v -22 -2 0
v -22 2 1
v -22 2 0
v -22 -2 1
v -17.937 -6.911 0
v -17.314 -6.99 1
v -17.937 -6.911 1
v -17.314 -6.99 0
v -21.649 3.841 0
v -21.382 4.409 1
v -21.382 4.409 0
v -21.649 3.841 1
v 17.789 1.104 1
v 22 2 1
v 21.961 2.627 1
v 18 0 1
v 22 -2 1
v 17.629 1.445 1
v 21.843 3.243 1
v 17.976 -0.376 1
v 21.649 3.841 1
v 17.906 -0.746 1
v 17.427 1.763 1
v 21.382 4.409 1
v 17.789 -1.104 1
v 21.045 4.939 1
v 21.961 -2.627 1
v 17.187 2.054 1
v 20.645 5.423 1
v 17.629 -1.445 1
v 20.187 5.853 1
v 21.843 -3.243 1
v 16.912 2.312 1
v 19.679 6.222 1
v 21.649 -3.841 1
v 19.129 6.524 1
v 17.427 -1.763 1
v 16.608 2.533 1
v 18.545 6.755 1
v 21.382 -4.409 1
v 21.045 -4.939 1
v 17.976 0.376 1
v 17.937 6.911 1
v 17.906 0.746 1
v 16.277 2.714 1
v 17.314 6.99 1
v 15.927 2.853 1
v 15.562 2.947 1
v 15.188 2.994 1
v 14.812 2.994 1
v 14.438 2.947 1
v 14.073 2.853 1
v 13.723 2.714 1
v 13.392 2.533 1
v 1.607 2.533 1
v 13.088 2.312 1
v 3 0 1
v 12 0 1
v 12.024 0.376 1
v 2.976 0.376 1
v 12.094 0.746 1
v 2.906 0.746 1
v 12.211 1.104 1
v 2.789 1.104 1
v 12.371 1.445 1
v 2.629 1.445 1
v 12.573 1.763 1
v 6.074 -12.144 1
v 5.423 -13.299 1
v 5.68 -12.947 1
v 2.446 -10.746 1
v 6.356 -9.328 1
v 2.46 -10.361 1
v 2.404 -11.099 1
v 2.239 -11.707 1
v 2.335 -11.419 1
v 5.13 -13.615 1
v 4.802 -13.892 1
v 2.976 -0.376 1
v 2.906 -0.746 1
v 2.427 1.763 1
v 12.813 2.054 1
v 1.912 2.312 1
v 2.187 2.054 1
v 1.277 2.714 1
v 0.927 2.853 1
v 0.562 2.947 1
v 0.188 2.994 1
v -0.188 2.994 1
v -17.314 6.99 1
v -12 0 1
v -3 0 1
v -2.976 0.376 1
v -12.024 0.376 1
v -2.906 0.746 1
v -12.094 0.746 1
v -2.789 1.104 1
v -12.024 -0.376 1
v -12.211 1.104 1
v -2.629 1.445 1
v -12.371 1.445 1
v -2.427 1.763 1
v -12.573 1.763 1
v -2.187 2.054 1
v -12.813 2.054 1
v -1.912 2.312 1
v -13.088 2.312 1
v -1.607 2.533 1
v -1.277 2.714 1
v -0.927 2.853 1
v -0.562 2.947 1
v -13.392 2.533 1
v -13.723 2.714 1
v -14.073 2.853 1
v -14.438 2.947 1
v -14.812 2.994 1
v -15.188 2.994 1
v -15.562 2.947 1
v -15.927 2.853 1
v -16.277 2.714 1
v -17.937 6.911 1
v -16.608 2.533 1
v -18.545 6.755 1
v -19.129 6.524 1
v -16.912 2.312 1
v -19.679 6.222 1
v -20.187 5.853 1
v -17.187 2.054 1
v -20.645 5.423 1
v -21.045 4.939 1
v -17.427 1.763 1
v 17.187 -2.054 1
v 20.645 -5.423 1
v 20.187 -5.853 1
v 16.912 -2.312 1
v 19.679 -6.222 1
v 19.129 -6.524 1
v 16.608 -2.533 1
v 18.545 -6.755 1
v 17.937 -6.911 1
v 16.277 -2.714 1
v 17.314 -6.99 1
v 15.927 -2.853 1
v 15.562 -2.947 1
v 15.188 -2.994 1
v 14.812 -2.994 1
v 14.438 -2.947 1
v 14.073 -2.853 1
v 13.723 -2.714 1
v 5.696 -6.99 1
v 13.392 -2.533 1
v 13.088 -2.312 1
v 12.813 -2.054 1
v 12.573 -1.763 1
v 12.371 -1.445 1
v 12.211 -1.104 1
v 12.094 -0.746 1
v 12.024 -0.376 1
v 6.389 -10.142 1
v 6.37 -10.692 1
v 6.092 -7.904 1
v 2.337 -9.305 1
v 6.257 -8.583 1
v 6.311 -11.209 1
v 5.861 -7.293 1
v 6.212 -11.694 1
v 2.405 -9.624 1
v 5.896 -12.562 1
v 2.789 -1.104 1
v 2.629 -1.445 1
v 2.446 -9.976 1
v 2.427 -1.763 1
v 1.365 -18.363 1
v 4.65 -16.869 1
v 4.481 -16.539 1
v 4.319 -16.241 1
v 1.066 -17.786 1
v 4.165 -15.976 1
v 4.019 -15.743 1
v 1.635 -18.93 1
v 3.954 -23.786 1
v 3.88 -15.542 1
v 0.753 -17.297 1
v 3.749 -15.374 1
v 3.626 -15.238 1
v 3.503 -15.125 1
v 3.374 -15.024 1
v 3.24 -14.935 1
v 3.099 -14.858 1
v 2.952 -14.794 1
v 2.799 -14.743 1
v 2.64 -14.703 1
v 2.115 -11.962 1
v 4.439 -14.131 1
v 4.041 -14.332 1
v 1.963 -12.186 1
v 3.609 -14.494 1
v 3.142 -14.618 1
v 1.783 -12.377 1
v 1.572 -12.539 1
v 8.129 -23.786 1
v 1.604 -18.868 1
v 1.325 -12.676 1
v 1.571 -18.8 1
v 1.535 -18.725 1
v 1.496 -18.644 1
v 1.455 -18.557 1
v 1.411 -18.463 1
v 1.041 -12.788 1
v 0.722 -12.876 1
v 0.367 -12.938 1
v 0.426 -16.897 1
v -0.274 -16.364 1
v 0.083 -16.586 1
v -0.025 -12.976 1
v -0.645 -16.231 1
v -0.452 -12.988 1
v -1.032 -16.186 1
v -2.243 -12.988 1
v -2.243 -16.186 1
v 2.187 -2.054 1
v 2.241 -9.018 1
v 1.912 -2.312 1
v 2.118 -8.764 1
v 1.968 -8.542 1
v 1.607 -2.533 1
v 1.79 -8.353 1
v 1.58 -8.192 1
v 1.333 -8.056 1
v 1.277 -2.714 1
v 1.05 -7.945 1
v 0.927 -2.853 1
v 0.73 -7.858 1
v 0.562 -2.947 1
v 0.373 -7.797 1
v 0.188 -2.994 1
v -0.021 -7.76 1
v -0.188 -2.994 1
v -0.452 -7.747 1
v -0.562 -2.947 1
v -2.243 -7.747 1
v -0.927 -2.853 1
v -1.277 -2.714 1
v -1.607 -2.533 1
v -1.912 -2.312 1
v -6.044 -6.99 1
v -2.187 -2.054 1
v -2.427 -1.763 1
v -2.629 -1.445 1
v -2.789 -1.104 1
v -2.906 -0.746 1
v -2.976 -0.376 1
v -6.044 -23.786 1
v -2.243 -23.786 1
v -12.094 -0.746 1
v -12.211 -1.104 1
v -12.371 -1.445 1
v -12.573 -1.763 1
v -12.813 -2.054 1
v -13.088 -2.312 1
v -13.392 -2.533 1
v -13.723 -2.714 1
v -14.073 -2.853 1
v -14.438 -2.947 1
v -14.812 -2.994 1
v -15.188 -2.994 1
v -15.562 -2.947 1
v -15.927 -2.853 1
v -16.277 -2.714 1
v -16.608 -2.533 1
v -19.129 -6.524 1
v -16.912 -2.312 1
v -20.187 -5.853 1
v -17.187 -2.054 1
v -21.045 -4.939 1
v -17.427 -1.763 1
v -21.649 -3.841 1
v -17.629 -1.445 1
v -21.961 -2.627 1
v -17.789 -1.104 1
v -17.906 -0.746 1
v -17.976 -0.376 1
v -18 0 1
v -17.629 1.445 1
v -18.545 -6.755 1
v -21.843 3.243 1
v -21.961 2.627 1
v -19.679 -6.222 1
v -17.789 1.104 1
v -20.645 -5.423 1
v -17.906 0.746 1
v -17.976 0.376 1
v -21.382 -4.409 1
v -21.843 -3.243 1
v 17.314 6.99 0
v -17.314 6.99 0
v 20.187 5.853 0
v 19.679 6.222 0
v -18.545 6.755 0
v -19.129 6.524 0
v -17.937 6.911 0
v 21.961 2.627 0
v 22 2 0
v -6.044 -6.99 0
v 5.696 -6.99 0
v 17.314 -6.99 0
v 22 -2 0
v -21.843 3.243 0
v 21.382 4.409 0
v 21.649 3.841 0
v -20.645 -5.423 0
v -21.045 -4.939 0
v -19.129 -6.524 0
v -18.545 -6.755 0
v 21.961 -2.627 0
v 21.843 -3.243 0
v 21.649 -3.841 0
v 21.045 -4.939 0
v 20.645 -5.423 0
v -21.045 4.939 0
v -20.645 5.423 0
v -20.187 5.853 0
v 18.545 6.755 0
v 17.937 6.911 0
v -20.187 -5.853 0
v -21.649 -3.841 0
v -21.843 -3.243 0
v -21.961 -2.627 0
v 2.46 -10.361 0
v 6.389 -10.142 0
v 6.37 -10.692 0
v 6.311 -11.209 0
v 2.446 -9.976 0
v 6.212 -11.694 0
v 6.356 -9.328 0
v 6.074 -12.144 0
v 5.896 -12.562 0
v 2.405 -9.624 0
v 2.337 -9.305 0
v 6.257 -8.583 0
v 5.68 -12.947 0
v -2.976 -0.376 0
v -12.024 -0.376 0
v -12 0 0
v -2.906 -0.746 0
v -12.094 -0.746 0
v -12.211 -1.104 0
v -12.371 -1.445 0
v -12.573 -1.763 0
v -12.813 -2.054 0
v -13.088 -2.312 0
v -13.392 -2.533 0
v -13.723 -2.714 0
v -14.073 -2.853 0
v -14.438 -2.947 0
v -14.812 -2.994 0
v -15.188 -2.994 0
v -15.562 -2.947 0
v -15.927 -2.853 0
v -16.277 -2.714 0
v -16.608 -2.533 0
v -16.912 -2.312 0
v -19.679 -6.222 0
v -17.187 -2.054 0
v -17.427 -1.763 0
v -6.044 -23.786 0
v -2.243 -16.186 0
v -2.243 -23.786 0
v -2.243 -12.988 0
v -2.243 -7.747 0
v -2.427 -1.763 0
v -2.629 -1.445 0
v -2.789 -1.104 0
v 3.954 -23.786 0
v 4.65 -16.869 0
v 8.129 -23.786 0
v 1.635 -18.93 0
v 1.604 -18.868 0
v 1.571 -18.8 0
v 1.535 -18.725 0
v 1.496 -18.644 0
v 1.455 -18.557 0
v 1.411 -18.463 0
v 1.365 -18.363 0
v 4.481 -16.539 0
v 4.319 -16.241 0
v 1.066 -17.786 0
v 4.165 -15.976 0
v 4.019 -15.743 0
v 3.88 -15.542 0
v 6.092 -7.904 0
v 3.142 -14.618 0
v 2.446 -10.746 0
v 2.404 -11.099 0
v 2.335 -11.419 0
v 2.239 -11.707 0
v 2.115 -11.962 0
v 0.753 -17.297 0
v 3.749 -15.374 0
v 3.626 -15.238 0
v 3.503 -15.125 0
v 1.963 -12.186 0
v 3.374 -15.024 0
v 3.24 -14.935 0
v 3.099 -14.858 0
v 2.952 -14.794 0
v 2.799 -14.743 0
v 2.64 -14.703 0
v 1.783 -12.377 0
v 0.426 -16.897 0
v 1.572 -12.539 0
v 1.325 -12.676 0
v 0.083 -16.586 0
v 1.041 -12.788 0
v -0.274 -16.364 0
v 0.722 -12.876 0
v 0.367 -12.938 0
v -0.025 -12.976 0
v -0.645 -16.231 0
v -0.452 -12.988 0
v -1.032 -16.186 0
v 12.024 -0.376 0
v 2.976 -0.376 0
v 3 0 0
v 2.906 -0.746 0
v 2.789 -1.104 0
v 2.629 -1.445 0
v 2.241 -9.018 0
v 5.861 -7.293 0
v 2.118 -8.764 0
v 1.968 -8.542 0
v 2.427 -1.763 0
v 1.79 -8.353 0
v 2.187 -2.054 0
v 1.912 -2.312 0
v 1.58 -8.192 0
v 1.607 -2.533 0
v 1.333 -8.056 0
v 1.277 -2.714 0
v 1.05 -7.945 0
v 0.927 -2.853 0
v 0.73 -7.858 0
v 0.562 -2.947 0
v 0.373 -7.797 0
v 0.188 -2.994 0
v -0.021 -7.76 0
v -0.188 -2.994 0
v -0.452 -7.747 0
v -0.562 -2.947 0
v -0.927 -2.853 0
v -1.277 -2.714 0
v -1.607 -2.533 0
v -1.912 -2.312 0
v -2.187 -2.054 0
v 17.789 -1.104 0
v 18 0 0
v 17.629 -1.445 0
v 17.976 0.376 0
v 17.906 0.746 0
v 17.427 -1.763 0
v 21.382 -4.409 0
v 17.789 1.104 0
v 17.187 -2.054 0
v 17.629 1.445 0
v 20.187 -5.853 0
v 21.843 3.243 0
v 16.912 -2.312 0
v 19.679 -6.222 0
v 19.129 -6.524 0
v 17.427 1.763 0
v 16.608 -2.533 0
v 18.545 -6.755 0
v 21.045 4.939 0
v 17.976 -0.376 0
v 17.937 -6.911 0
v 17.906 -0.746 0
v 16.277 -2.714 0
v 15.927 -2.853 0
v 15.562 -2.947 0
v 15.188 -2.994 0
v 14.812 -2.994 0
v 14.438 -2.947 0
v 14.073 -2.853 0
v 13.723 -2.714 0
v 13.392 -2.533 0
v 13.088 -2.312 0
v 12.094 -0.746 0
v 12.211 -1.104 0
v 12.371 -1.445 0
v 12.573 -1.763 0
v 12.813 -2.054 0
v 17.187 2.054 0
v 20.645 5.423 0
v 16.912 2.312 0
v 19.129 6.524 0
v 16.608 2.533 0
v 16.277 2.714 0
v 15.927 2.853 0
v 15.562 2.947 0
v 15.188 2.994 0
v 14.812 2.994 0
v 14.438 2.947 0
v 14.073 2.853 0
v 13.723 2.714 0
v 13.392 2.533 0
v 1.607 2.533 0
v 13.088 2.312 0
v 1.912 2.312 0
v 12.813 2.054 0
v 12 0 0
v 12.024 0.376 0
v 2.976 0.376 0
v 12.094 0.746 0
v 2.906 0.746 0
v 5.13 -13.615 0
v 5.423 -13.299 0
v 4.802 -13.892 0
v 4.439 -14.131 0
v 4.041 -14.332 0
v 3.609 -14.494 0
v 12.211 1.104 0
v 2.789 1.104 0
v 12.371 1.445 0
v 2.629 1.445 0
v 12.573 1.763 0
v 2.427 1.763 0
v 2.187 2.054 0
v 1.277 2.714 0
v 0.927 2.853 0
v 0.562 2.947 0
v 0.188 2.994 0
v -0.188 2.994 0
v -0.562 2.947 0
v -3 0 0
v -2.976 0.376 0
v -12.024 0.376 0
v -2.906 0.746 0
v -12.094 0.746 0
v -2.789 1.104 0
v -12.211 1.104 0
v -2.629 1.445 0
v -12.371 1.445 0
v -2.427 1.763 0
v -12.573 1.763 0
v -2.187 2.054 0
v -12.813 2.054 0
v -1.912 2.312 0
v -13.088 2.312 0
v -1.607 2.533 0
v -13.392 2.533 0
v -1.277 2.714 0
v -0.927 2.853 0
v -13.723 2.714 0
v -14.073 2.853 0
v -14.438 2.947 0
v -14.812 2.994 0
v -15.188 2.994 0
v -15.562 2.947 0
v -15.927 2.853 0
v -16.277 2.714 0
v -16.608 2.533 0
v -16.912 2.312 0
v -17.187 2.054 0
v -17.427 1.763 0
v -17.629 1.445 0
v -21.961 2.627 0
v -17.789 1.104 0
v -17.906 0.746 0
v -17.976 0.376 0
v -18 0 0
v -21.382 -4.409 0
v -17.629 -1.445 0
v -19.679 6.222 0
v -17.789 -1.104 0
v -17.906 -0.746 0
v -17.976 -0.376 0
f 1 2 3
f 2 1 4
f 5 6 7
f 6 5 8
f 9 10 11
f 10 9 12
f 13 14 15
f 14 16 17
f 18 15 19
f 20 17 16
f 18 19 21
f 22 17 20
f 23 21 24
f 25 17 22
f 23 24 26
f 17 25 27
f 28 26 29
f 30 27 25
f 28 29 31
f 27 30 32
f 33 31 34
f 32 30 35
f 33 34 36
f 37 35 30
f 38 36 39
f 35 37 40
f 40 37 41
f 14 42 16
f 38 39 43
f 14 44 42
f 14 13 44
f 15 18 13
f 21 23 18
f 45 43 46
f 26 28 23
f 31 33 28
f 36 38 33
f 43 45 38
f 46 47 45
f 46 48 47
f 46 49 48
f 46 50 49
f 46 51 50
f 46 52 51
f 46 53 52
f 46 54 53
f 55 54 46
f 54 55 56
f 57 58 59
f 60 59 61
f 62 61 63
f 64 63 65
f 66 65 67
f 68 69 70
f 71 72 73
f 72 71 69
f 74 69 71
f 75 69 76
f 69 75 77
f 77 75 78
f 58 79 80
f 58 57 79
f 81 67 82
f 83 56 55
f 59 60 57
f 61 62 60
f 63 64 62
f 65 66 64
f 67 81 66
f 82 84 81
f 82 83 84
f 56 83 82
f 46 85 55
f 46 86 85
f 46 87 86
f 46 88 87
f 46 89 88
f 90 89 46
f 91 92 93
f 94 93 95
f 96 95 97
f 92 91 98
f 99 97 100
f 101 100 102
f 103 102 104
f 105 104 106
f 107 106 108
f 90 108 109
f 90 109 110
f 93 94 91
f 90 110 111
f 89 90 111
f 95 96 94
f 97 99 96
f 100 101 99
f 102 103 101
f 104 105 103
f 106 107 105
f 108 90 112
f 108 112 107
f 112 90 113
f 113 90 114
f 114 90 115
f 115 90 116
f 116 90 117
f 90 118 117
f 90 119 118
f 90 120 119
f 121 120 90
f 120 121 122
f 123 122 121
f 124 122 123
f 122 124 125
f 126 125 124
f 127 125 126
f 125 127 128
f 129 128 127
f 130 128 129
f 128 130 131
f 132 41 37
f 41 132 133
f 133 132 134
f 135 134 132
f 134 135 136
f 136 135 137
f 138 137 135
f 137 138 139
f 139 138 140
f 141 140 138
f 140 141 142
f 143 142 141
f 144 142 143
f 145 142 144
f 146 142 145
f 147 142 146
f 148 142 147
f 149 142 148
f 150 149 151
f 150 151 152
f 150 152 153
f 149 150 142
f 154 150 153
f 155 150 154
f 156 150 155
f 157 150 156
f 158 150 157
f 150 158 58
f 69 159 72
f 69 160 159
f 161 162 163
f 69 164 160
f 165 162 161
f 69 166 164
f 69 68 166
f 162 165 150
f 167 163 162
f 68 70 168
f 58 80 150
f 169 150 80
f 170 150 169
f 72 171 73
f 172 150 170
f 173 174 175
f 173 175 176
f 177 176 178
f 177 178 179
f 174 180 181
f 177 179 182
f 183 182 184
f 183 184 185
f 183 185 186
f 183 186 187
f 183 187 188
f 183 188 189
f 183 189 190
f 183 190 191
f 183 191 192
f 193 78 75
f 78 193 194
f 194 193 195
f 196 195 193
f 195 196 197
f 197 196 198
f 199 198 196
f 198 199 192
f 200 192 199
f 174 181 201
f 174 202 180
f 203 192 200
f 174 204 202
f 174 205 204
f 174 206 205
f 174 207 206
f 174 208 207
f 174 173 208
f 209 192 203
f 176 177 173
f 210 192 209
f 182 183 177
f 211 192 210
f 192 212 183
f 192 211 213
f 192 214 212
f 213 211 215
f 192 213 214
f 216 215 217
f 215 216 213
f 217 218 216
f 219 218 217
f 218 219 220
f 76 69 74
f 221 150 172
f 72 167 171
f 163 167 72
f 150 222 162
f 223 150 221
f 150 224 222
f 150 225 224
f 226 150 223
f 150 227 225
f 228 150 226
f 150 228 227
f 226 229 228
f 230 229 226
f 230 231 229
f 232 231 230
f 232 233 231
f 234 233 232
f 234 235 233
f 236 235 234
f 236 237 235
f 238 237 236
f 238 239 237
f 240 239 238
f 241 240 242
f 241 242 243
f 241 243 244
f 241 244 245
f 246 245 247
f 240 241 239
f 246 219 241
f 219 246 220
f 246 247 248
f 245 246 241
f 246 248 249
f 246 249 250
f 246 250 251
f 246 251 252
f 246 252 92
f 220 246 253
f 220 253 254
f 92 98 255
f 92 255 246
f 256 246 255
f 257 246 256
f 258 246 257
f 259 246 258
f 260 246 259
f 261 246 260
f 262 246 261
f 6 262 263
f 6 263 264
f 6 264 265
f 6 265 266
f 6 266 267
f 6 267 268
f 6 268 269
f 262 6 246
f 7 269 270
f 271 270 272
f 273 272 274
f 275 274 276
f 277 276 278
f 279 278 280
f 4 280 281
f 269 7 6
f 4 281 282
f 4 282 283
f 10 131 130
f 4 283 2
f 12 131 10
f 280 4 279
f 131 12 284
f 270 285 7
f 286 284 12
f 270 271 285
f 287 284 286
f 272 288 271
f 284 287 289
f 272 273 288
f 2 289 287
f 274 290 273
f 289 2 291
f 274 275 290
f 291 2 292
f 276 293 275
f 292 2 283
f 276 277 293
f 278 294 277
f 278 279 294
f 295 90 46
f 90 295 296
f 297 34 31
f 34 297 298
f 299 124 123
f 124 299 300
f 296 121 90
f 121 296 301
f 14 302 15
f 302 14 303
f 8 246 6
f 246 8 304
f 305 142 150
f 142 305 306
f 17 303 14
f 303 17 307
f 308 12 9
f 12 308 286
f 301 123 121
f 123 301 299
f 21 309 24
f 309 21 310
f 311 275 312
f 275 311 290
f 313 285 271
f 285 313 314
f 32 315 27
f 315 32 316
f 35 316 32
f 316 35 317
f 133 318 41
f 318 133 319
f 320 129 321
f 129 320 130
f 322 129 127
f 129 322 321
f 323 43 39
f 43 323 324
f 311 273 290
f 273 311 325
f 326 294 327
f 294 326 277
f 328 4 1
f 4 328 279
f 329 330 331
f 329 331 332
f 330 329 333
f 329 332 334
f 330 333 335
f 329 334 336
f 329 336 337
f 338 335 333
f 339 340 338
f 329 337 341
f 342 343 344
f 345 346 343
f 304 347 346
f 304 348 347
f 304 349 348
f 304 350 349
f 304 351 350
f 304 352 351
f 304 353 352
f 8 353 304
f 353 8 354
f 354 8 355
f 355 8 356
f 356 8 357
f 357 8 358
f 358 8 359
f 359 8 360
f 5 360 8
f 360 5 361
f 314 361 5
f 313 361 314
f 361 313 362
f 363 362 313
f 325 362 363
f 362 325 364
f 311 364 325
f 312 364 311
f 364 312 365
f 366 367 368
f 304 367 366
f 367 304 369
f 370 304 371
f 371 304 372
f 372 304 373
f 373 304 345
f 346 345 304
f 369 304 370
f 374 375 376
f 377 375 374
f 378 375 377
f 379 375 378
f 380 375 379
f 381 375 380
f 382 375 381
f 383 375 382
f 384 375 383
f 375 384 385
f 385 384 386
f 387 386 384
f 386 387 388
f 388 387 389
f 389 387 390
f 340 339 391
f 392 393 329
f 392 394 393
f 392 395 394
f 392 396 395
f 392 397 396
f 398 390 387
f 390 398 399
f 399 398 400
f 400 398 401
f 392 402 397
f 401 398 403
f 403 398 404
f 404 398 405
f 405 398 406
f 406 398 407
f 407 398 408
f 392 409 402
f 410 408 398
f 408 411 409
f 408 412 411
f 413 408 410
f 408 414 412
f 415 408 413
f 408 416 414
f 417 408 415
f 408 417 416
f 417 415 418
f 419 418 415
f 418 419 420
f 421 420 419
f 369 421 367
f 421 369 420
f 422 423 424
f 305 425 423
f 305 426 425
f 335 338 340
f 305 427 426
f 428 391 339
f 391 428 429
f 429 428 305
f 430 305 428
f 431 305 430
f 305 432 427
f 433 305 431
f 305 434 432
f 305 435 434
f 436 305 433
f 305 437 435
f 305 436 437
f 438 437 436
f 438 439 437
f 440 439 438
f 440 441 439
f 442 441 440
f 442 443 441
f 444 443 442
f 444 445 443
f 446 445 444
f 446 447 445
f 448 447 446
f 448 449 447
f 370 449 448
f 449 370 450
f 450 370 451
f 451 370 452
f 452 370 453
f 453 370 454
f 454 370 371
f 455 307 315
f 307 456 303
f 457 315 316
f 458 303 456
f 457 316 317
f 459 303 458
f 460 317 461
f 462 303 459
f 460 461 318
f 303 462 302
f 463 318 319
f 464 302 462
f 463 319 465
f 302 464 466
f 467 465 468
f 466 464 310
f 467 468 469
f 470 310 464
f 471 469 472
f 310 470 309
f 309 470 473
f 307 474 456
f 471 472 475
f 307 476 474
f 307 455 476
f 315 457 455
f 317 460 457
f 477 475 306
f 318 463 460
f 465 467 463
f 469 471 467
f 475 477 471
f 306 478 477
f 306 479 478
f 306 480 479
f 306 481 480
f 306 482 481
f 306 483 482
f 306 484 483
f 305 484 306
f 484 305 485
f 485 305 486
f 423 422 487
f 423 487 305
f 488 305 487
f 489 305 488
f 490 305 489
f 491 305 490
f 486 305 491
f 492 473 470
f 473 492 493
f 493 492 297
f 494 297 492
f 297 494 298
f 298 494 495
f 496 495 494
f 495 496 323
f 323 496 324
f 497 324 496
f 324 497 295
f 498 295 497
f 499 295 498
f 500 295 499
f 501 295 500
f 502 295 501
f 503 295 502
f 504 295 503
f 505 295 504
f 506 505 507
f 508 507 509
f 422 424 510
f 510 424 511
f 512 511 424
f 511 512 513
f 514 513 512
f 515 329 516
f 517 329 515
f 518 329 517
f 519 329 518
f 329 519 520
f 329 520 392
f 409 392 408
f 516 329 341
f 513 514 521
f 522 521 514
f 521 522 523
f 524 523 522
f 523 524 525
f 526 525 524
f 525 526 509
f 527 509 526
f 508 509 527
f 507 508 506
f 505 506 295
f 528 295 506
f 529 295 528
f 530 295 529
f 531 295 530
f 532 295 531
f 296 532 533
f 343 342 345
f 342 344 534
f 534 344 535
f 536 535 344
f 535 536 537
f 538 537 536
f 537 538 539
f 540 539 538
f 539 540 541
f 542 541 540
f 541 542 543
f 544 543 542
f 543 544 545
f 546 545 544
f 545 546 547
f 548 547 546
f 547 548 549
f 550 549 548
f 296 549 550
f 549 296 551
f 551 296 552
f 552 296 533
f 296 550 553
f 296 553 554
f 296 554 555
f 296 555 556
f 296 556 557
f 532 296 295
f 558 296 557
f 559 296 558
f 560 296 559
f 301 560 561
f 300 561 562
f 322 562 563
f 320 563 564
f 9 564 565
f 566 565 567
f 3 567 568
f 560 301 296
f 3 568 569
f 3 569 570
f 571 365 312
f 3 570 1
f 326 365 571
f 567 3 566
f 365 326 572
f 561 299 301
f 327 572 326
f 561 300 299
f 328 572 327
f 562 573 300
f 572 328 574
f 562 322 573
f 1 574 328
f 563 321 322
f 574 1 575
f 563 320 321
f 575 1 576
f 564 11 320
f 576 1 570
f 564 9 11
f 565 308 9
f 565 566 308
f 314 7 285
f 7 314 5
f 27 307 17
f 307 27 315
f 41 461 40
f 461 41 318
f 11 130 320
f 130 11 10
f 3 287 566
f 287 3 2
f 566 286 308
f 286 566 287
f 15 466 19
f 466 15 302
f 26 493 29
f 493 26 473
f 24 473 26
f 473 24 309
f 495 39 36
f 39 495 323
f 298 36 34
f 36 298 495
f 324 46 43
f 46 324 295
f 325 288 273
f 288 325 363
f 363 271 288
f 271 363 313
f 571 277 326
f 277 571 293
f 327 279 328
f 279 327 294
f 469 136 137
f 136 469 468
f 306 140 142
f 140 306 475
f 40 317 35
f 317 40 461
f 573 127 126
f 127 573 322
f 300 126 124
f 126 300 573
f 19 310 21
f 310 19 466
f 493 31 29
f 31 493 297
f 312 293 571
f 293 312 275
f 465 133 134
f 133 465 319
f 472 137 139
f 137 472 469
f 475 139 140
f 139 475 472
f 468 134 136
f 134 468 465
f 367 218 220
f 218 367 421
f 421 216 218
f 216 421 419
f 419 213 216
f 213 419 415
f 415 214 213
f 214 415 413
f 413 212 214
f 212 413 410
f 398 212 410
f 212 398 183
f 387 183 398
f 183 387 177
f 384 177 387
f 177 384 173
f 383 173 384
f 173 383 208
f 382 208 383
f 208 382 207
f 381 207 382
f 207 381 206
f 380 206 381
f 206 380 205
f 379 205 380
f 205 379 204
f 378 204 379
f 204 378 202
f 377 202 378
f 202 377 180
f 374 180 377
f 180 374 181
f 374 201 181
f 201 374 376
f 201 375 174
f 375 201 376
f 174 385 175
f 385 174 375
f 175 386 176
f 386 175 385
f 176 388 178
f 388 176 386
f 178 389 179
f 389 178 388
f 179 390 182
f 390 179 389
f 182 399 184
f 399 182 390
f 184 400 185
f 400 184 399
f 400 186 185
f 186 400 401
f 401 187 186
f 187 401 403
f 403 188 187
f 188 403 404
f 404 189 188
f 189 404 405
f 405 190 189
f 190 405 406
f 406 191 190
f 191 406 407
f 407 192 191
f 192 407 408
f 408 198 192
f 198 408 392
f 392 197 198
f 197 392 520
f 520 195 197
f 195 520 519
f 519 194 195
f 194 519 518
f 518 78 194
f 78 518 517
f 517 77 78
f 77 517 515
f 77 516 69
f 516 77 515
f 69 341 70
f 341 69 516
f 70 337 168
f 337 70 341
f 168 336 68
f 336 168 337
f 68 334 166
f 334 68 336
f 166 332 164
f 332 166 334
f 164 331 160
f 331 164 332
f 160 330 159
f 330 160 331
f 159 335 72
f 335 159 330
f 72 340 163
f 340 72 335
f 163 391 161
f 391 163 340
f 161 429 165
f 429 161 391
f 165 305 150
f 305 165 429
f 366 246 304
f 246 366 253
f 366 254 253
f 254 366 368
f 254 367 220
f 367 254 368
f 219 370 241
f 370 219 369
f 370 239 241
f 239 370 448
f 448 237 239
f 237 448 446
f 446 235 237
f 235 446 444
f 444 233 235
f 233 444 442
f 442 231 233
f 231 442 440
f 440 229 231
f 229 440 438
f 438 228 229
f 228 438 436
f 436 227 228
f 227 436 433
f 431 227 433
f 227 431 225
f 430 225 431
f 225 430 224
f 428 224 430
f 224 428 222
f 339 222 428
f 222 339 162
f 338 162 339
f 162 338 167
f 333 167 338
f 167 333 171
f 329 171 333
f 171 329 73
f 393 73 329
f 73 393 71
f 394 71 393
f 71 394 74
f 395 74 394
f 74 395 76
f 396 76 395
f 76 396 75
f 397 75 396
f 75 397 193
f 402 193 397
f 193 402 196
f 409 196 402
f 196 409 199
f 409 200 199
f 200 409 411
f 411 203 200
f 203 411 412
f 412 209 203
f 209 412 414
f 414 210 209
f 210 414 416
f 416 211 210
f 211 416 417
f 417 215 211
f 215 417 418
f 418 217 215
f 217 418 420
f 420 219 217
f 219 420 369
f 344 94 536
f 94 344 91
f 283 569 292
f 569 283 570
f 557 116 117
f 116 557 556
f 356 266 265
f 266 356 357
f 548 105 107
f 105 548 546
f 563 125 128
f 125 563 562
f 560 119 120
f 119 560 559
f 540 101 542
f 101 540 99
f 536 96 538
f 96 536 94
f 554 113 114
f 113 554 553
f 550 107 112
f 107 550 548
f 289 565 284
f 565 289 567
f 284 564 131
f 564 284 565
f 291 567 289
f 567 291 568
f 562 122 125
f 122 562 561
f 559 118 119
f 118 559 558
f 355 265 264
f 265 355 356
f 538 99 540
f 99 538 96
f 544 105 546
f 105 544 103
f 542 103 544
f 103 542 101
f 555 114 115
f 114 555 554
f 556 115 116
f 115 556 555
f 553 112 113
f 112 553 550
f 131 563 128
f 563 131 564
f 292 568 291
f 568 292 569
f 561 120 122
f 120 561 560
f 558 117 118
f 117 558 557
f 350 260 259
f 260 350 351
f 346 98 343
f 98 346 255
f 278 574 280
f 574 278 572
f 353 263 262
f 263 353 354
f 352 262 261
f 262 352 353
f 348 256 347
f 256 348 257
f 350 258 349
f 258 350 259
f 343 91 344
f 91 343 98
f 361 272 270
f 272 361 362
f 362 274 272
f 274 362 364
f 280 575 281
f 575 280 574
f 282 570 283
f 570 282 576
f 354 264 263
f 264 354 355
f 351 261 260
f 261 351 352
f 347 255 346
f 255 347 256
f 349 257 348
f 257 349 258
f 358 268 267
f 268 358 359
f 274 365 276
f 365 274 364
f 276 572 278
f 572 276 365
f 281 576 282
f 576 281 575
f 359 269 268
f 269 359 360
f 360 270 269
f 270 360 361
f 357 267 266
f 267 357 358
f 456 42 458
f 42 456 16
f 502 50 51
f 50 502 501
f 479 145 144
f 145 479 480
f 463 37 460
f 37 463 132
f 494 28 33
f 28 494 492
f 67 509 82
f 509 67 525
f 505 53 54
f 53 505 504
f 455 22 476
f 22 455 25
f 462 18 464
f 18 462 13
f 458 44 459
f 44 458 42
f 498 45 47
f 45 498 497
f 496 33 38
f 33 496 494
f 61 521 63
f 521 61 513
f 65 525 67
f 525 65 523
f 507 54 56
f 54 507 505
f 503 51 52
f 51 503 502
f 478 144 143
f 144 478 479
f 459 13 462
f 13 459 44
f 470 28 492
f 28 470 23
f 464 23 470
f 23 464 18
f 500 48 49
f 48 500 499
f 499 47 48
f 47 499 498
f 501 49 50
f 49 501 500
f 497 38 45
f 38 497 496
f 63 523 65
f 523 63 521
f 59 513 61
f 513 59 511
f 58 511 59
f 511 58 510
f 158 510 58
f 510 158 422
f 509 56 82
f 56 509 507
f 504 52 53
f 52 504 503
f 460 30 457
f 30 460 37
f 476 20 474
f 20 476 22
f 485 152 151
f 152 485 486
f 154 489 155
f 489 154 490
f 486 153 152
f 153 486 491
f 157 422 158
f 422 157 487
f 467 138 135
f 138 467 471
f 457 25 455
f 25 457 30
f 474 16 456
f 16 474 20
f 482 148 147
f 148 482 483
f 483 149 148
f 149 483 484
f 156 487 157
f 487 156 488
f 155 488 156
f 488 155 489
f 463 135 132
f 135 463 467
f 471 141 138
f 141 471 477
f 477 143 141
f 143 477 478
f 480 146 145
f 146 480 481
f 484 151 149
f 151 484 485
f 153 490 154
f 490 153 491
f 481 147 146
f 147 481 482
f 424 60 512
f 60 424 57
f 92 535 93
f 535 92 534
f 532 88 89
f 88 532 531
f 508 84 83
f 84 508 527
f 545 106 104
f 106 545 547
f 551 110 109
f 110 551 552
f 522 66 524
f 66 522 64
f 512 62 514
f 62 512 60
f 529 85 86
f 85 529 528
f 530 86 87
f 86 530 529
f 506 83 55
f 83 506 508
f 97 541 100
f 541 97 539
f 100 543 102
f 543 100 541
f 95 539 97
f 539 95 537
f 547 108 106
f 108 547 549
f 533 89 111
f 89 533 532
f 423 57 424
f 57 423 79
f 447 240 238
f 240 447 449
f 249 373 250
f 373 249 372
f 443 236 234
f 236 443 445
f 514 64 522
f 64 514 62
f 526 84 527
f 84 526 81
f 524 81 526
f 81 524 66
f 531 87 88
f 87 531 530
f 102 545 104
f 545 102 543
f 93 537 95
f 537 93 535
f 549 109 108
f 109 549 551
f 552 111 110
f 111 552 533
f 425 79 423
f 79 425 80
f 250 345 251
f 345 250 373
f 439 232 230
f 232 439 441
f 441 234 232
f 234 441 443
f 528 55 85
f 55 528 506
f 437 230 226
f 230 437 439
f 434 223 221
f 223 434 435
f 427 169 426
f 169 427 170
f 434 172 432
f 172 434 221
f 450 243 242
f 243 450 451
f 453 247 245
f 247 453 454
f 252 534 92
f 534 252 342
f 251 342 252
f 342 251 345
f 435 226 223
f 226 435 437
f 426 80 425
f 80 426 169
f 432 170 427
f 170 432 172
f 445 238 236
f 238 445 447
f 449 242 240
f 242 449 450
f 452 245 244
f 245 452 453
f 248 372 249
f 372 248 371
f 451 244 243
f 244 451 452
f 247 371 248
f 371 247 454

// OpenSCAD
$fn = 50;


difference() {
	union() {
		translate(v = [0, 0, 0]) {
			rotate(a = [0, 0, 0]) {
				hull() {
					translate(v = [-17.0000000000, 2.0000000000, 0]) {
						rotate(a = [0, 0, 0]) {
							translate(v = [0, 0, 0]) {
								rotate(a = [0, 0, 0]) {
									cylinder(h = 1, r = 5);
								}
							}
						}
					}
					translate(v = [17.0000000000, 2.0000000000, 0]) {
						rotate(a = [0, 0, 0]) {
							translate(v = [0, 0, 0]) {
								rotate(a = [0, 0, 0]) {
									cylinder(h = 1, r = 5);
								}
							}
						}
					}
					translate(v = [-17.0000000000, -2.0000000000, 0]) {
						rotate(a = [0, 0, 0]) {
							translate(v = [0, 0, 0]) {
								rotate(a = [0, 0, 0]) {
									cylinder(h = 1, r = 5);
								}
							}
						}
					}
					translate(v = [17.0000000000, -2.0000000000, 0]) {
						rotate(a = [0, 0, 0]) {
							translate(v = [0, 0, 0]) {
								rotate(a = [0, 0, 0]) {
									cylinder(h = 1, r = 5);
								}
							}
						}
					}
				}
			}
		}
		translate(v = [0, -5, 0]) {
			rotate(a = [0, 0, 0]) {
				linear_extrude(height = 1) {
					text(font = "DejaVu Sans Mono:style=Bold", halign = "center", size = 19.0000000000, text = "R", valign = "top");
				}
			}
		}
	}
	union() {
		translate(v = [-15.0000000000, 0.0000000000, -125.0000000000]) {
			rotate(a = [0, 0, 0]) {
				cylinder(h = 250, r = 3.0000000000);
			}
		}
		translate(v = [15.0000000000, 0.0000000000, -125.0000000000]) {
			rotate(a = [0, 0, 0]) {
				cylinder(h = 250, r = 3.0000000000);
			}
		}
		translate(v = [15.0000000000, 0.0000000000, -125.0000000000]) {
			rotate(a = [0, 0, 0]) {
				cylinder(h = 250, r = 3.0000000000);
			}
		}
		translate(v = [0, 0, -125.0000000000]) {
			rotate(a = [0, 0, 0]) {
				cylinder(h = 250, r = 3.0000000000);
			}
		}
	}
}
